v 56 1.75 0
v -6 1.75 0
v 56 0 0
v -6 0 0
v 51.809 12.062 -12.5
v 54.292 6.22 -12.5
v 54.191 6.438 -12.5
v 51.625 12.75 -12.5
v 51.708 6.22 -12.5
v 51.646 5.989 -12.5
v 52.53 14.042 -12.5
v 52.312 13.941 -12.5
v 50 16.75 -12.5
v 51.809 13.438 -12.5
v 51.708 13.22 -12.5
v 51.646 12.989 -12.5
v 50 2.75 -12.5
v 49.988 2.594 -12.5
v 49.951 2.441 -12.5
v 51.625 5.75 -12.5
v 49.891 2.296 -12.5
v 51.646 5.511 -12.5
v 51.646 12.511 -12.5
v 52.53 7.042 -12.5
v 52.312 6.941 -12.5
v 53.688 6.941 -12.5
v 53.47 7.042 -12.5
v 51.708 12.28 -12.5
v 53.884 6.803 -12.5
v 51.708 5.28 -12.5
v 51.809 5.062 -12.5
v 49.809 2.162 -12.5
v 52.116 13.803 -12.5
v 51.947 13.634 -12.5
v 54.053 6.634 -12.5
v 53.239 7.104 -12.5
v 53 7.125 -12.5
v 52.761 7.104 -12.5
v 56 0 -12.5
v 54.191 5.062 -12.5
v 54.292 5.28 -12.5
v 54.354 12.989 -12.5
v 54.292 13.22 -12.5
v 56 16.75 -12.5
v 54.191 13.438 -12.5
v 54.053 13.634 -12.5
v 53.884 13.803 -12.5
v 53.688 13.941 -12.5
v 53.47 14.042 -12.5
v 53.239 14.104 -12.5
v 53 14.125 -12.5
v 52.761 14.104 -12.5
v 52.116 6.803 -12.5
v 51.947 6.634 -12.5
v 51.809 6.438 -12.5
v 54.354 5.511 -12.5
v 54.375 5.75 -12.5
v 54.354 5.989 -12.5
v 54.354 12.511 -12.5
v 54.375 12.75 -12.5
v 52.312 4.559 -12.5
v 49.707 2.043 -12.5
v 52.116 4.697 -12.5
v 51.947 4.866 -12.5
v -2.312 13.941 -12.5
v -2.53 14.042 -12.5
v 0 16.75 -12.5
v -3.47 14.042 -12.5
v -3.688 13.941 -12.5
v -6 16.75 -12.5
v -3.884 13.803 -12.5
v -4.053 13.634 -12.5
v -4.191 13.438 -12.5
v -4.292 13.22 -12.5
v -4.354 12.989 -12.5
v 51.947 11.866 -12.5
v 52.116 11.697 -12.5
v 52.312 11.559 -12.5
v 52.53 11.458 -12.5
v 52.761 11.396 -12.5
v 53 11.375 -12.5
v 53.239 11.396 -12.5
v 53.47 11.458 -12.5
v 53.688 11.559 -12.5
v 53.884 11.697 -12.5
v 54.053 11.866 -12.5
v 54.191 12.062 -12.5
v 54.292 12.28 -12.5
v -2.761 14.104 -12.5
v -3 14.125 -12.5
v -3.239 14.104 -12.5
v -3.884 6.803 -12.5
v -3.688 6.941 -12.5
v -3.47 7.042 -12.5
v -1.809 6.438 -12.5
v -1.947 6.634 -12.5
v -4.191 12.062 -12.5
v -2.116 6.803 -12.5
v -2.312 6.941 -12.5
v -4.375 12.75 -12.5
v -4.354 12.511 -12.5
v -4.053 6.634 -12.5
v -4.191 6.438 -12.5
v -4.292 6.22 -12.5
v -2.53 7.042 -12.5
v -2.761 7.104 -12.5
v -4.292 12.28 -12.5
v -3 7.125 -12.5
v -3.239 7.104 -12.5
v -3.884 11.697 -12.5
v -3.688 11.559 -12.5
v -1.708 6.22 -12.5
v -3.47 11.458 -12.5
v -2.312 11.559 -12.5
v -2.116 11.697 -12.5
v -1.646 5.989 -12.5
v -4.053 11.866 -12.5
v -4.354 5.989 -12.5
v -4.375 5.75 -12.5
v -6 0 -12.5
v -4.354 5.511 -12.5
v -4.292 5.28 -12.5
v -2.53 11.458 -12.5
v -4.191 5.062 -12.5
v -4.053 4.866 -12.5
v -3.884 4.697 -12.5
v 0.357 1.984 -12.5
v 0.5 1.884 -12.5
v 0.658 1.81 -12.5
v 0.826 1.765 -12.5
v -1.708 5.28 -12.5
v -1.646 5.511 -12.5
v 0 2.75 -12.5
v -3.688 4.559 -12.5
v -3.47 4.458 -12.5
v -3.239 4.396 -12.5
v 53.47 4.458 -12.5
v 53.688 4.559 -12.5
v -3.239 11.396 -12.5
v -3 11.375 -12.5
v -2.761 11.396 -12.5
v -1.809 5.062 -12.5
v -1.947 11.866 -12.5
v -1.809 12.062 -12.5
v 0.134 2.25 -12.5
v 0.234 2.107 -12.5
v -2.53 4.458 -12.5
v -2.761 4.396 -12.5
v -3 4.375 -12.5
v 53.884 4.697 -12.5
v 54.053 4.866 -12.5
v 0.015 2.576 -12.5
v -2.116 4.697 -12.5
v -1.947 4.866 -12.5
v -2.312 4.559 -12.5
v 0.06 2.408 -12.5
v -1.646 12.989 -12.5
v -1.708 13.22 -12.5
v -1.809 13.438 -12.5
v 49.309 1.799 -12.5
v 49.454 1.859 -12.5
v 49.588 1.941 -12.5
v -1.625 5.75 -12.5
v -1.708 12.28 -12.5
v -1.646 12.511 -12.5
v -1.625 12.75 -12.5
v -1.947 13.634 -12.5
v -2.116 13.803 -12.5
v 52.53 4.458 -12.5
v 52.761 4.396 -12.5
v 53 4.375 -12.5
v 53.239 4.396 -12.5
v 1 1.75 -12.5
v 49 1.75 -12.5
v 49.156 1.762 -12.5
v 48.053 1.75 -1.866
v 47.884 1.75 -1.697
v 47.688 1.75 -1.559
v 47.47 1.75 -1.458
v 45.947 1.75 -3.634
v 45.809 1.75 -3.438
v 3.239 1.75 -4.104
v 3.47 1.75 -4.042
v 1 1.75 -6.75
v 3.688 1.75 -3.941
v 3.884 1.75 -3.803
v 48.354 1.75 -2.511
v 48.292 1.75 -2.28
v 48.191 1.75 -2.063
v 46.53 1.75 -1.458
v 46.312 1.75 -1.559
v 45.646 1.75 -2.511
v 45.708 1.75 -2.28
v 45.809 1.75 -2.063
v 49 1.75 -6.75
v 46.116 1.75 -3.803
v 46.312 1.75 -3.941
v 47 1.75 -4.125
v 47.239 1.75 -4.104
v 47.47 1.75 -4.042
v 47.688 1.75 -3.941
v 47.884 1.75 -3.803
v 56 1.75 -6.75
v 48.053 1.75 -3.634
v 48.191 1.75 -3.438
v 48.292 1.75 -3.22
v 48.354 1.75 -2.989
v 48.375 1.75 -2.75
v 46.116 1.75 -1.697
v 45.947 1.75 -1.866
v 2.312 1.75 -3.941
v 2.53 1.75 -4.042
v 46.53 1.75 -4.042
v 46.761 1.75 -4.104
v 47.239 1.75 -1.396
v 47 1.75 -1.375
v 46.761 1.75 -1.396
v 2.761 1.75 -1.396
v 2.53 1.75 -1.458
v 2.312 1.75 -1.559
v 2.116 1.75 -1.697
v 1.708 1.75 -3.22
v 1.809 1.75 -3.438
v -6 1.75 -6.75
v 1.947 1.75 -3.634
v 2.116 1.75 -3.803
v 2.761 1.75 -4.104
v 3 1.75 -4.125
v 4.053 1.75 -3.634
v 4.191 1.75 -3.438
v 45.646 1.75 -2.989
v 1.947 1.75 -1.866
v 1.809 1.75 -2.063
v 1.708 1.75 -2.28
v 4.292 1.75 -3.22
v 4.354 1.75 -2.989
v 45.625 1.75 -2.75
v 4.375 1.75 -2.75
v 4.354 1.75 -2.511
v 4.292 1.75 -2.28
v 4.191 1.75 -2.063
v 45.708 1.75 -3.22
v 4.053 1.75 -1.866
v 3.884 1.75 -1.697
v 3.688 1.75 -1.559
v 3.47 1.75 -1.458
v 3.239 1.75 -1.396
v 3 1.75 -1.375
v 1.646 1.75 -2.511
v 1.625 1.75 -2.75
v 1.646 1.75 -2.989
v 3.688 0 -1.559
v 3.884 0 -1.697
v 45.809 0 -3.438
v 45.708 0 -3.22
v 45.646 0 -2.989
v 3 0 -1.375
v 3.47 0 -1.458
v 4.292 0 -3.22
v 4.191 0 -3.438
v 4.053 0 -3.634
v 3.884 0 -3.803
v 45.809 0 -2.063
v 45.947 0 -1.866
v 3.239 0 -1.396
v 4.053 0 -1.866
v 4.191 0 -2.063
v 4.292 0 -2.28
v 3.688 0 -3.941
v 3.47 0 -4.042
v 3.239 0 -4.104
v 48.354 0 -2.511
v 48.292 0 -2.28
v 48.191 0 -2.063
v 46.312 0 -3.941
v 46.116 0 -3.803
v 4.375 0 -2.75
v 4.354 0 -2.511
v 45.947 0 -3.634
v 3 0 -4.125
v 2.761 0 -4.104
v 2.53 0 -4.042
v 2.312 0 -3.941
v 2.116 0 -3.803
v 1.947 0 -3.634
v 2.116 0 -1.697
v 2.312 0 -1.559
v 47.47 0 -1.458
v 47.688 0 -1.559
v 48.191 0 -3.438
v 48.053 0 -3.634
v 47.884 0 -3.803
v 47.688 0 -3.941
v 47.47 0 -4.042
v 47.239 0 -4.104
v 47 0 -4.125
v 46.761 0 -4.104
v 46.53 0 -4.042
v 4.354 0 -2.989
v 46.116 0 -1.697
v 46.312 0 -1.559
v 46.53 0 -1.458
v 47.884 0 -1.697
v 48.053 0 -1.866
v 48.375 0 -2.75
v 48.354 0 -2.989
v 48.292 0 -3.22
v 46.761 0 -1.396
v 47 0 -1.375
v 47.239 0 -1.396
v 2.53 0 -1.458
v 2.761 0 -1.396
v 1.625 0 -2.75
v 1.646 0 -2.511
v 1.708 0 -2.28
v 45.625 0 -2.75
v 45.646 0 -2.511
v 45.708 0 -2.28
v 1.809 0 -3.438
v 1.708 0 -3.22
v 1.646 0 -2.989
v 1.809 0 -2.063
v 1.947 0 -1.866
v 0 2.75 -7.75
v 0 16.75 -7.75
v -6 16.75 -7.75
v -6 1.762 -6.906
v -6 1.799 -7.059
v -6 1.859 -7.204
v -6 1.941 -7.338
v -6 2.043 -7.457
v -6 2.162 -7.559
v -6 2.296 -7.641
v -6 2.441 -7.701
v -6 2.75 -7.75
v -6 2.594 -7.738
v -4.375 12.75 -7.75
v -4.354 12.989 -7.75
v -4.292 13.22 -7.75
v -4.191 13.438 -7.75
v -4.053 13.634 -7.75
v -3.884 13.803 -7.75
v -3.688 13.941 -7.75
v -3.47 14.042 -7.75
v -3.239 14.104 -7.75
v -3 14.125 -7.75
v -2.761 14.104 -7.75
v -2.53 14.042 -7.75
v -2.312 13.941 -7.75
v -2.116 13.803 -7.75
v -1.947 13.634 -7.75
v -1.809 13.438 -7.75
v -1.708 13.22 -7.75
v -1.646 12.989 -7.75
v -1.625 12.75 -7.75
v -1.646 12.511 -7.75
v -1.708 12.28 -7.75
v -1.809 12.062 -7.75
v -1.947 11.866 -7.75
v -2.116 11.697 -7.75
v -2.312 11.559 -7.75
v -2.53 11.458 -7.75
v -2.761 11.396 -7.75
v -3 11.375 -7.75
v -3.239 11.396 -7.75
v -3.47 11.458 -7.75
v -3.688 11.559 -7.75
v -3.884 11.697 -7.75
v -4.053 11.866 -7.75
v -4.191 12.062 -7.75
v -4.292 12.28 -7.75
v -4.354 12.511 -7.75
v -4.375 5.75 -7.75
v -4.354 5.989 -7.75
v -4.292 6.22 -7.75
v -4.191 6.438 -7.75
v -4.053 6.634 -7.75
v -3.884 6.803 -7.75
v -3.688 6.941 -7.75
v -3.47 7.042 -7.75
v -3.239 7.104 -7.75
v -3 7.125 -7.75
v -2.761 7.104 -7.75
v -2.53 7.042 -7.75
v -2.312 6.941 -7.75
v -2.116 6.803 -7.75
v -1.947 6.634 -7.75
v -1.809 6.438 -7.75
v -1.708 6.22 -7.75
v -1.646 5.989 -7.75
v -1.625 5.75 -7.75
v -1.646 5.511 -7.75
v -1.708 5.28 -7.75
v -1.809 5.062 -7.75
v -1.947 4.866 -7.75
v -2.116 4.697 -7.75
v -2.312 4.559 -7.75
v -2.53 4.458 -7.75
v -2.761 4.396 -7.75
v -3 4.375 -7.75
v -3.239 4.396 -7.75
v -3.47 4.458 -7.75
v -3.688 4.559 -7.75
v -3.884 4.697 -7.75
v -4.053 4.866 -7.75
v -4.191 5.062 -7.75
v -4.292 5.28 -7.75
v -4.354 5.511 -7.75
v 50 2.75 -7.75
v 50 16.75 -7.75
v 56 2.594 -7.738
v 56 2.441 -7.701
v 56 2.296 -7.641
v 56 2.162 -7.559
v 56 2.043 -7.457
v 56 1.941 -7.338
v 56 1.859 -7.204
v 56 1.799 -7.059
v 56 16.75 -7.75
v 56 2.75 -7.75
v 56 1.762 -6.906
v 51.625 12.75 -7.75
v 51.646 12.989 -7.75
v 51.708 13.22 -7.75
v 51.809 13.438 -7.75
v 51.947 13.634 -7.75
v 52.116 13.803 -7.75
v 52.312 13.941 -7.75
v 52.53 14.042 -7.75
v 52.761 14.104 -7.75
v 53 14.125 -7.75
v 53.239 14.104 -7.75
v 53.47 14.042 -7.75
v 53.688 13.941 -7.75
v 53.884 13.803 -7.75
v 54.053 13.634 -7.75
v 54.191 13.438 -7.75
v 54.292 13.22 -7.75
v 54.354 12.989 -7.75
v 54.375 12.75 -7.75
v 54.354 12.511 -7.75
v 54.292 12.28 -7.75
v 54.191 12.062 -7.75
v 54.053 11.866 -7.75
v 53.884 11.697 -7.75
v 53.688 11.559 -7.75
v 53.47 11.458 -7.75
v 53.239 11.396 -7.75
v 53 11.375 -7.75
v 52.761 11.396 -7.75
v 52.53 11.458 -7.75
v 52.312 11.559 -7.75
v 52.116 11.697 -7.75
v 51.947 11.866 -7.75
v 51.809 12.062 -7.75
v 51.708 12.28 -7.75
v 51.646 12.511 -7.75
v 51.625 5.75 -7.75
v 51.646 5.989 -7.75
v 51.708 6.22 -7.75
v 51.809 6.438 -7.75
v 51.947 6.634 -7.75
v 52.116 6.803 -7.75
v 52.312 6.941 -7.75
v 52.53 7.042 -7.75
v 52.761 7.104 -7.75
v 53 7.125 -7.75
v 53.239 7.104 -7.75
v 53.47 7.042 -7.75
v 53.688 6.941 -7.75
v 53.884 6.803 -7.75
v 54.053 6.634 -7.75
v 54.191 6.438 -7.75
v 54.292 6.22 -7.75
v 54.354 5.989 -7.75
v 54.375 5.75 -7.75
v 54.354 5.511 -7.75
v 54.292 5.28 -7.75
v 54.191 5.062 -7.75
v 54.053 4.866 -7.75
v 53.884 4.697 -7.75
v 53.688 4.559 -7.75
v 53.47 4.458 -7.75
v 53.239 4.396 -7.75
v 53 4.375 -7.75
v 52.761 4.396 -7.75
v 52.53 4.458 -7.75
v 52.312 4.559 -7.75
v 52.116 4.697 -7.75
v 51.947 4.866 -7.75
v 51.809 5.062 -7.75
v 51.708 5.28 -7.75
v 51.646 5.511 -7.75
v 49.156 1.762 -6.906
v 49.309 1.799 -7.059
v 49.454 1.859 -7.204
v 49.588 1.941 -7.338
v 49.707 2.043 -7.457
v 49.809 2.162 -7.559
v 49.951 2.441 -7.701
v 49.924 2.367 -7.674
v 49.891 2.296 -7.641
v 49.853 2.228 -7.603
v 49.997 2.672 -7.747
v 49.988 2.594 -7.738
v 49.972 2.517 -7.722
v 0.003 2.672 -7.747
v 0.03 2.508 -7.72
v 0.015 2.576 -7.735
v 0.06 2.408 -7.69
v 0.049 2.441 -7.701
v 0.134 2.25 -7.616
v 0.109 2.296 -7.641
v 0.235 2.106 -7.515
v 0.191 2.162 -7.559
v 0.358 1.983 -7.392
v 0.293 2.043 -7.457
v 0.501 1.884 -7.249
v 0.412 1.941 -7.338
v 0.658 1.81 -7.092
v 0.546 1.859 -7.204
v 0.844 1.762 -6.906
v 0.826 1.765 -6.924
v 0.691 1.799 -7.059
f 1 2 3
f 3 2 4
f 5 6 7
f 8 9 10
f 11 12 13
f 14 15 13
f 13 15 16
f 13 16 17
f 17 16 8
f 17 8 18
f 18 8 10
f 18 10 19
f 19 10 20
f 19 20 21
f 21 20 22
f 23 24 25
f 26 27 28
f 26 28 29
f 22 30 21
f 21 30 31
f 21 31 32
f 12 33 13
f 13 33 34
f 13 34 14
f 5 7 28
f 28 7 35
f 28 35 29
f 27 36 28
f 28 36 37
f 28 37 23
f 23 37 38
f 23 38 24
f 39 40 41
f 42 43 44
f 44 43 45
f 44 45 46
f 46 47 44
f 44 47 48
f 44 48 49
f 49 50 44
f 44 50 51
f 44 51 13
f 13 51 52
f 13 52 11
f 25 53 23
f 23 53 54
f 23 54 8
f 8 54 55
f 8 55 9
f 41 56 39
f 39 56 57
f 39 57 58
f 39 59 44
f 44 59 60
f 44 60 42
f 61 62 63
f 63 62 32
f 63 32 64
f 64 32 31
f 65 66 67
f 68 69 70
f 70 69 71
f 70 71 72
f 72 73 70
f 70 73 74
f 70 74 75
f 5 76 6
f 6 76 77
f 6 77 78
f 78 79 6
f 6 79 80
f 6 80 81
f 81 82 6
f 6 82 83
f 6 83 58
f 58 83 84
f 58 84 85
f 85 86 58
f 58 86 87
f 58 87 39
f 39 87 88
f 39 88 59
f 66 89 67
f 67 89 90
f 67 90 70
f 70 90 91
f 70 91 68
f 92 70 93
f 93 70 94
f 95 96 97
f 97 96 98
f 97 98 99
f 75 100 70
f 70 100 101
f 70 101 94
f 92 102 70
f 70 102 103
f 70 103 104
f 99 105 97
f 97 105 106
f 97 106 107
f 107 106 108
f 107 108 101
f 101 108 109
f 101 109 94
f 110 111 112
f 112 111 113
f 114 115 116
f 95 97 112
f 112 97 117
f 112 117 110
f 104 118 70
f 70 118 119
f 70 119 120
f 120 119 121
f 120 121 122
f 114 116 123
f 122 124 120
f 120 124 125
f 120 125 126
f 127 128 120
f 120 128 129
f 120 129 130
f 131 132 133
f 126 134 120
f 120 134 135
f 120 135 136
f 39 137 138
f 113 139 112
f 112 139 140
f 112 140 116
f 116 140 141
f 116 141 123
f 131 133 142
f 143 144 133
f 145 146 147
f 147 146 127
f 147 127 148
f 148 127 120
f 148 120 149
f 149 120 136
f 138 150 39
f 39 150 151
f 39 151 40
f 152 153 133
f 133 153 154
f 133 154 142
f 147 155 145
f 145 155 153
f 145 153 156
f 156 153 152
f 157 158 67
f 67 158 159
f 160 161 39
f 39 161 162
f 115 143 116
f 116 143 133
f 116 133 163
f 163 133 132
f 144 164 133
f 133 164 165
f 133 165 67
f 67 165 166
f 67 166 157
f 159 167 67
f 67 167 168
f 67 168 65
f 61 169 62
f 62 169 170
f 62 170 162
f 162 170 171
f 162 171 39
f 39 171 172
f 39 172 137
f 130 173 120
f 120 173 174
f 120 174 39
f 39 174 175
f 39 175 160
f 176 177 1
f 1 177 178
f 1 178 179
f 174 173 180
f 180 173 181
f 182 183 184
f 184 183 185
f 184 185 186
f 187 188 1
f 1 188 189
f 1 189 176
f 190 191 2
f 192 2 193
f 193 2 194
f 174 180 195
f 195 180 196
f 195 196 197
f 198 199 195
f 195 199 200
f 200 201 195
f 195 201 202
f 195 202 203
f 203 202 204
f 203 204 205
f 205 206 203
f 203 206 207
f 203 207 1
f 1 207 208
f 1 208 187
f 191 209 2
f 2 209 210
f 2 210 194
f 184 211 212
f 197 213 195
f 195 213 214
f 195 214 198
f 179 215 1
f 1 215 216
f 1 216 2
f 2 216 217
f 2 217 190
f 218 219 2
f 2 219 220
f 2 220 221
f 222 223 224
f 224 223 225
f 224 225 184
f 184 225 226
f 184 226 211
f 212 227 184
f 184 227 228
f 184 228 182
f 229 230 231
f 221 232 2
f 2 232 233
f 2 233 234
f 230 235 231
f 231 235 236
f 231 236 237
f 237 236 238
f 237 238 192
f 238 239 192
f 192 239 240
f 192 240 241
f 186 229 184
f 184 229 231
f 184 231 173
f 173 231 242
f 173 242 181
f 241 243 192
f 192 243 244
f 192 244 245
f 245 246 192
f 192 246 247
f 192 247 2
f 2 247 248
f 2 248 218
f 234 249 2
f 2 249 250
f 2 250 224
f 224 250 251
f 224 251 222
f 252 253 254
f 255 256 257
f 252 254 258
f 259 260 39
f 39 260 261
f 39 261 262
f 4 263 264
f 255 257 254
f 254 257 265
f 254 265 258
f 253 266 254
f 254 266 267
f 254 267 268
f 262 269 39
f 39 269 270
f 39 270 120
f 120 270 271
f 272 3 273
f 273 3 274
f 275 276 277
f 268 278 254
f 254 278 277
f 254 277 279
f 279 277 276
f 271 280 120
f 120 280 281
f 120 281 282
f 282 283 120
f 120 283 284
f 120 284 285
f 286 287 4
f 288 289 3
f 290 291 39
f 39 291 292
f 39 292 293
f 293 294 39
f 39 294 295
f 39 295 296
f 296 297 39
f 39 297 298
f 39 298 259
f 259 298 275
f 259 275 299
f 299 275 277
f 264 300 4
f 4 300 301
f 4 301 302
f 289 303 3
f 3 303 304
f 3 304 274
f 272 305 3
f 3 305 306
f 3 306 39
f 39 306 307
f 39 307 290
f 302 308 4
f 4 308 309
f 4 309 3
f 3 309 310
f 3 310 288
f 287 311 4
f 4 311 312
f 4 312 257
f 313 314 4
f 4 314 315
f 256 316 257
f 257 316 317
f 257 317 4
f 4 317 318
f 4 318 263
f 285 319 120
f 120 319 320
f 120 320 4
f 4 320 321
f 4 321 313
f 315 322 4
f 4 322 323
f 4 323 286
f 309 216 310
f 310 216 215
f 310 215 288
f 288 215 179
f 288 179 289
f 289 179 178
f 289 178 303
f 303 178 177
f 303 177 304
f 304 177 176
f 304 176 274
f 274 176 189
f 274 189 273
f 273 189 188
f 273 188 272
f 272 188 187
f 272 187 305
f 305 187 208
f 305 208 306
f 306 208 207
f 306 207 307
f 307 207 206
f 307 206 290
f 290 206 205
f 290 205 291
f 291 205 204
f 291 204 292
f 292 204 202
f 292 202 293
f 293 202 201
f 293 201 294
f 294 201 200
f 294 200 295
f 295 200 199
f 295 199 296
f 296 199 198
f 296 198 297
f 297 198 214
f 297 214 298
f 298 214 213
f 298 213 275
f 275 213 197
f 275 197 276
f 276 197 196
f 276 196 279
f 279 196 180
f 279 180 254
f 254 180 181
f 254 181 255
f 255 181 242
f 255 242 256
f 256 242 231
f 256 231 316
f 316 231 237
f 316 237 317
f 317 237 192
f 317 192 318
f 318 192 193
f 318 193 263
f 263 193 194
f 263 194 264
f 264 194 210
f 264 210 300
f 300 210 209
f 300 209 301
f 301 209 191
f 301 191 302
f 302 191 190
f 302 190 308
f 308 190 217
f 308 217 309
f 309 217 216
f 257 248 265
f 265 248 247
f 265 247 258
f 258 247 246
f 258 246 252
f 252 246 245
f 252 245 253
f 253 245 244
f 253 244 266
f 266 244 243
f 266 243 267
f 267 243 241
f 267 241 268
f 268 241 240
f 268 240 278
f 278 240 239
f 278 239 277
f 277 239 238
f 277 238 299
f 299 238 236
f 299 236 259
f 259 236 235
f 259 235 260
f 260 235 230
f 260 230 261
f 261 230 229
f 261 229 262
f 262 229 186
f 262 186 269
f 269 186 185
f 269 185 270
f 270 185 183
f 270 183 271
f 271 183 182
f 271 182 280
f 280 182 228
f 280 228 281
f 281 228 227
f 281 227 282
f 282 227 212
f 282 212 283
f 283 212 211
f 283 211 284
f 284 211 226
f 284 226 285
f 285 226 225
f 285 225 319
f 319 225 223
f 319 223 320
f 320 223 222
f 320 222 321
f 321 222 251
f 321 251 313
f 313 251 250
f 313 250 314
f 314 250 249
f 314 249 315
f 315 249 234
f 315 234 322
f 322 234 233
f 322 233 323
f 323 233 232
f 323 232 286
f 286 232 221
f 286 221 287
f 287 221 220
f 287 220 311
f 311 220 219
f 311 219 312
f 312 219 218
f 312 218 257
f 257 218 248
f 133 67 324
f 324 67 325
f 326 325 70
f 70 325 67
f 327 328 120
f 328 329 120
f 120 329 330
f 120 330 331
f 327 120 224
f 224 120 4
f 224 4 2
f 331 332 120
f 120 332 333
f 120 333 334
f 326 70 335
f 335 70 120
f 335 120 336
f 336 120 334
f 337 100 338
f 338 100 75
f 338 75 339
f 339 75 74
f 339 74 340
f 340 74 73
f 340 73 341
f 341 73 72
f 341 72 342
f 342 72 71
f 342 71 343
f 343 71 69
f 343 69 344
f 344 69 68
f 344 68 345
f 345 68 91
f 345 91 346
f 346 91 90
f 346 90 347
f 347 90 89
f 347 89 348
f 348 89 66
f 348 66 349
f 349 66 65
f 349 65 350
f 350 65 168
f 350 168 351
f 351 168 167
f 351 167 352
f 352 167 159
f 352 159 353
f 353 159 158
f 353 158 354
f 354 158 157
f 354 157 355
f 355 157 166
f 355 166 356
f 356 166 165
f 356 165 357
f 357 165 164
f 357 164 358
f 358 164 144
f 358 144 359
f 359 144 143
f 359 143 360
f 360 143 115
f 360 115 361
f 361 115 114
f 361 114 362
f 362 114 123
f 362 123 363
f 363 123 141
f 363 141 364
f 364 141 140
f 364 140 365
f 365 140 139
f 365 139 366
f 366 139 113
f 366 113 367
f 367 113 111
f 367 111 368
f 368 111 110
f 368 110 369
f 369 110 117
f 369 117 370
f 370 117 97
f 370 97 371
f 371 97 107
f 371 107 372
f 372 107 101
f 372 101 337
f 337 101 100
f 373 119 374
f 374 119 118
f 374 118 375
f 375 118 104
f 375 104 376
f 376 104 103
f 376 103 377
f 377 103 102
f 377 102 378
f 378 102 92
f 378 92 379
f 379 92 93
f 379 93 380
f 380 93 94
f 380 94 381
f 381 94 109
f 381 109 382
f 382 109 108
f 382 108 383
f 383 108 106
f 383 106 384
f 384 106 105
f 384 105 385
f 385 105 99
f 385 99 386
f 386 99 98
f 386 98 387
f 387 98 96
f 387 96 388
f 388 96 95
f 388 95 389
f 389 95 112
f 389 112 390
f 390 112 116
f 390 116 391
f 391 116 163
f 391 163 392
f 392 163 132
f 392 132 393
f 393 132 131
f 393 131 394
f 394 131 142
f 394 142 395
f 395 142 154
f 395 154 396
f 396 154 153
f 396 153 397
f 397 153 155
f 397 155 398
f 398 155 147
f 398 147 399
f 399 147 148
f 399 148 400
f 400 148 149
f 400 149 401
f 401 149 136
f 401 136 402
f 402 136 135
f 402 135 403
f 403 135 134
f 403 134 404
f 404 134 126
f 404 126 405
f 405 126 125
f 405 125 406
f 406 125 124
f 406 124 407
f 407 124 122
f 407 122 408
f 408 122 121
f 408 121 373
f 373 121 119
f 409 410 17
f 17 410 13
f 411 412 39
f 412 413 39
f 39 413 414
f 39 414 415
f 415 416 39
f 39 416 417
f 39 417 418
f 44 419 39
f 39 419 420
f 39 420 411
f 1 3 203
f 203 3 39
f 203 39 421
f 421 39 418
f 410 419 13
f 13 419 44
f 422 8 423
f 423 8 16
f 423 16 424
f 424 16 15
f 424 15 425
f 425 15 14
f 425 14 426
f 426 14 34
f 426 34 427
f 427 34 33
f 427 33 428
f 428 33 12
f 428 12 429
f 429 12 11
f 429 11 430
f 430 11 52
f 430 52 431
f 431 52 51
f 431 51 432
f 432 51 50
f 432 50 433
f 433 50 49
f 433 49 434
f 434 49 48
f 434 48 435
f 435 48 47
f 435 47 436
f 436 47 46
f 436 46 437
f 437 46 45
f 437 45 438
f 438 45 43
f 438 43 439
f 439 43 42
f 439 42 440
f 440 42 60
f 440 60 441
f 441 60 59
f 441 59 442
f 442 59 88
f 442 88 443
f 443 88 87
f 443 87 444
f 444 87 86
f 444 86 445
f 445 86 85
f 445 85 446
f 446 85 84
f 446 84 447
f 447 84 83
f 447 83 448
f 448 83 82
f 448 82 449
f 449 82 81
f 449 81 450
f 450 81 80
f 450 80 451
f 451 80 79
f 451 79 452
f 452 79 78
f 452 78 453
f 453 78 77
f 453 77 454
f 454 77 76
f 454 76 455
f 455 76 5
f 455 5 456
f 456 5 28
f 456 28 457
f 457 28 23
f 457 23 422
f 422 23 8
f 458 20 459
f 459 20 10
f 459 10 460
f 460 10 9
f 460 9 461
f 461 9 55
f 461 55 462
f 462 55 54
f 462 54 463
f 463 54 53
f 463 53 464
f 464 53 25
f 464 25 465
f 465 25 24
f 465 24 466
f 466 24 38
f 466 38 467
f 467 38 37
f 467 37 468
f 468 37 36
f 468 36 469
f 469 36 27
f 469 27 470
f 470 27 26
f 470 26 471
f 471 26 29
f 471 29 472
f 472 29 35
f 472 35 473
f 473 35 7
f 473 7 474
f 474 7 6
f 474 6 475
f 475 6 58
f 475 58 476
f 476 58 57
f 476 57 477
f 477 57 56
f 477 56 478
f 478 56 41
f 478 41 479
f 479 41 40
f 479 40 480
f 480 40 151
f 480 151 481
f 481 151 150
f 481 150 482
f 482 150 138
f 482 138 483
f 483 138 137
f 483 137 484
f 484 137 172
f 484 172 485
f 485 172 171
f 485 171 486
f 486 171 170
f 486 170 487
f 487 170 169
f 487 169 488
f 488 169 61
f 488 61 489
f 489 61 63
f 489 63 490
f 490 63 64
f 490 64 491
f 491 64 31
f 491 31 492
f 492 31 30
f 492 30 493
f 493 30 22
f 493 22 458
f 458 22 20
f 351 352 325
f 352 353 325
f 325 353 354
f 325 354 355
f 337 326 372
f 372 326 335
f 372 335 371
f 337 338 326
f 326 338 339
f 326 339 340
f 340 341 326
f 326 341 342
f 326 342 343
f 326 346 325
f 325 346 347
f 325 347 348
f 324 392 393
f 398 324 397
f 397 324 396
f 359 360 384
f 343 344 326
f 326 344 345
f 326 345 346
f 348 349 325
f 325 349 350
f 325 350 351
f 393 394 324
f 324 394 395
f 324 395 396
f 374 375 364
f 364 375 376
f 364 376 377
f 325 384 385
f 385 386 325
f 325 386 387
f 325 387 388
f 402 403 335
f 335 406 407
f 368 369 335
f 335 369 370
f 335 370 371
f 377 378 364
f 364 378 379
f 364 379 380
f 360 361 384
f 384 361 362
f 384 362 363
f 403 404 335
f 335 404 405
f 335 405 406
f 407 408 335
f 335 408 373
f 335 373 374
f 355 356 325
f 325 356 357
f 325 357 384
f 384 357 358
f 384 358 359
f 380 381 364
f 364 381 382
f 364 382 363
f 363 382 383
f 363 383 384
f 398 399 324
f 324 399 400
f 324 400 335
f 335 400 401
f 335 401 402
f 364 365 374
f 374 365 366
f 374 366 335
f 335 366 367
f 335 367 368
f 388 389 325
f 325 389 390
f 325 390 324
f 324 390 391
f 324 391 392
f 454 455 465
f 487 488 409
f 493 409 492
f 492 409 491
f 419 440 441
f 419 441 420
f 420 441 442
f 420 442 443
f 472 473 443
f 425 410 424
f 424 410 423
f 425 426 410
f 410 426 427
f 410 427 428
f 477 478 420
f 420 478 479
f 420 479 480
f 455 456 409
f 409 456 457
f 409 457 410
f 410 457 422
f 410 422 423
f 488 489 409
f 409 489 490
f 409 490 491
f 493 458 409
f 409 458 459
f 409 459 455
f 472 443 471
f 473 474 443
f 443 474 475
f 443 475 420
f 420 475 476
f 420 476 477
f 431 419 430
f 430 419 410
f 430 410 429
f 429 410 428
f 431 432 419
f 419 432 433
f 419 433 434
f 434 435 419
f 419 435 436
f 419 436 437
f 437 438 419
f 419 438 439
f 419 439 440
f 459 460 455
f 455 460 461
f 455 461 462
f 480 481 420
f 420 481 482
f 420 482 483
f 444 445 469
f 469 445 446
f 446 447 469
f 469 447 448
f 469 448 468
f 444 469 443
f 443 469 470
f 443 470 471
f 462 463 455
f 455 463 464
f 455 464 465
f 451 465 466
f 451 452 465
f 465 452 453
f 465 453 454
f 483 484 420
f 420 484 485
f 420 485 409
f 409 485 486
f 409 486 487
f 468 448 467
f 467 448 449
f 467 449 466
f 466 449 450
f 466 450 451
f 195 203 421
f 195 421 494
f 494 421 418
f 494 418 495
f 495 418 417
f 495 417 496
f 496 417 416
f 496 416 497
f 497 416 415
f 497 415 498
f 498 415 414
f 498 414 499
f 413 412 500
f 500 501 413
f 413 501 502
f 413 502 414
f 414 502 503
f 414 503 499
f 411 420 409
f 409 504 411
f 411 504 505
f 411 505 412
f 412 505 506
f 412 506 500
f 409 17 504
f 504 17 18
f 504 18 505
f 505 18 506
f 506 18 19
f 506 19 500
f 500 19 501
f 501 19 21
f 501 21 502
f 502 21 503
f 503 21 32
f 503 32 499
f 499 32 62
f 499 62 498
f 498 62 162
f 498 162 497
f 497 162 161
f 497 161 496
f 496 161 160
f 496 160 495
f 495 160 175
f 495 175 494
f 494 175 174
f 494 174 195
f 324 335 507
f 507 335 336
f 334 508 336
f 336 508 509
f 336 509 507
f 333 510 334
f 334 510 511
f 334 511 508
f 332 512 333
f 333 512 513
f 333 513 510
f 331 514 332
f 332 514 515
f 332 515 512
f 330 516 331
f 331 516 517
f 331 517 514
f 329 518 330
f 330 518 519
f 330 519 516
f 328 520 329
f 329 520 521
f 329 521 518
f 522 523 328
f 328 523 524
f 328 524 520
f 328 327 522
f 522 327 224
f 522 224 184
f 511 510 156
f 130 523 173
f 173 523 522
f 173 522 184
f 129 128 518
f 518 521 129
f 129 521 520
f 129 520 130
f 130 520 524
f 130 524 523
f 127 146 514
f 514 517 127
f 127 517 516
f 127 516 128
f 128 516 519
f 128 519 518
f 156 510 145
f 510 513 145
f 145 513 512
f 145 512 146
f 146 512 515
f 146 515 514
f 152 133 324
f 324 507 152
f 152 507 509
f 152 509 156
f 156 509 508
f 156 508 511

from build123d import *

# Parameters (mm, degrees)
SKETCH1_W                  = 50
SKETCH1_H                  = 12.5
BASE_DEPTH                 = 1.75
SKETCH2_R                  = 1.375
CHASSISMOUNTINGHOLES_DEPTH = 1.75
SKETCH3_W                  = 6
SKETCH3_H                  = 16.75
SKETCH3_R                  = 1.375
BOSS_EXTRUDE2_DEPTH        = 1.75
BOSS_EXTRUDE3_DEPTH        = 1.75
SKETCH5_W                  = 6
SKETCH5_H                  = 15
SKETCH5_R                  = 1.375
BOSS_EXTRUDE4_DEPTH        = 3
BOSS_EXTRUDE5_DEPTH        = 1.75
FILLET1_R                  = 1


with BuildPart() as part:
    # Sketch1 → base (new body)
    with BuildSketch(Plane(origin=(0, 0, 0), x_dir=(1, 0, 0), z_dir=(0, 1, 0))):
        with Locations((25, 6.25)):
            Rectangle(SKETCH1_W, SKETCH1_H)
    extrude(amount=BASE_DEPTH)

    # Sketch2 → chassisMountingHoles (cut)
    with BuildSketch(Plane(origin=(0, 1.75, 0), x_dir=(1, 0, 0), z_dir=(0, 1, 0))):
        with Locations(Location((3, 2.75, 0), (0, 0, 270))):
            Circle(SKETCH2_R)
        with Locations(Location((47, 2.75, 0), (0, 0, 90))):
            Circle(SKETCH2_R)
    extrude(amount=-CHASSISMOUNTINGHOLES_DEPTH, mode=Mode.SUBTRACT)

    # Sketch3 → Boss-Extrude2 (add)
    with BuildSketch(Plane(origin=(0, 0, -12.5), x_dir=(-1, 0, 0), z_dir=(0, 0, -1))):
        with Locations((3, 8.375)):
            Rectangle(SKETCH3_W, SKETCH3_H)
        with Locations((3, 12.75)):
            Circle(SKETCH3_R, mode=Mode.SUBTRACT)
        with Locations((3, 5.75)):
            Circle(SKETCH3_R, mode=Mode.SUBTRACT)
        with Locations((-53, 8.375)):
            Rectangle(SKETCH3_W, SKETCH3_H)
        with Locations(Location((-53, 12.75, 0), (0, 0, 180))):
            Circle(SKETCH3_R, mode=Mode.SUBTRACT)
        with Locations(Location((-53, 5.75, 0), (0, 0, 180))):
            Circle(SKETCH3_R, mode=Mode.SUBTRACT)
    extrude(amount=-BOSS_EXTRUDE2_DEPTH)

    # Sketch4 → Boss-Extrude3 (add)
    with BuildSketch(Plane(origin=(0, 1.75, 0), x_dir=(1, 0, 0), z_dir=(0, 1, 0))):
        Polygon((50, 0), (56, 10.75), (50, 10.75), align=None)
        Polygon((-6, 10.75), (0, 10.75), (0, 0), align=None)
    extrude(amount=-BOSS_EXTRUDE3_DEPTH)

    # Sketch5 → Boss-Extrude4 (add)
    with BuildSketch(Plane.XY.offset(-10.75)):
        with Locations((-3, 9.25)):
            Rectangle(SKETCH5_W, SKETCH5_H)
        with Locations(Location((-3, 5.75, 0), (0, 0, 180))):
            Circle(SKETCH5_R, mode=Mode.SUBTRACT)
        with Locations(Location((-3, 12.75, 0), (0, 0, 180))):
            Circle(SKETCH5_R, mode=Mode.SUBTRACT)
        with Locations((53, 9.25)):
            Rectangle(SKETCH5_W, SKETCH5_H)
        with Locations((53, 5.75)):
            Circle(SKETCH5_R, mode=Mode.SUBTRACT)
        with Locations((53, 12.75)):
            Circle(SKETCH5_R, mode=Mode.SUBTRACT)
    extrude(amount=BOSS_EXTRUDE4_DEPTH)

    # Sketch6 → Boss-Extrude5 (add)
    with BuildSketch(Plane.XZ):
        Polygon((-6, -10.75), (-6, 0), (0, 0), align=None)
        Polygon((56, 0), (50, 0), (56, -10.75), align=None)
    extrude(amount=-BOSS_EXTRUDE5_DEPTH)

    # Fillet1
    fillet1_edges = [part.edges().sort_by_distance(p)[0] for p in [
        (53, 1.75, -7.75),
        (50, 1.75, -10.125),
        (0, 1.75, -10.125),
        (-3, 1.75, -7.75),
    ]]
    fillet(fillet1_edges, radius=FILLET1_R)


solid = part.part
